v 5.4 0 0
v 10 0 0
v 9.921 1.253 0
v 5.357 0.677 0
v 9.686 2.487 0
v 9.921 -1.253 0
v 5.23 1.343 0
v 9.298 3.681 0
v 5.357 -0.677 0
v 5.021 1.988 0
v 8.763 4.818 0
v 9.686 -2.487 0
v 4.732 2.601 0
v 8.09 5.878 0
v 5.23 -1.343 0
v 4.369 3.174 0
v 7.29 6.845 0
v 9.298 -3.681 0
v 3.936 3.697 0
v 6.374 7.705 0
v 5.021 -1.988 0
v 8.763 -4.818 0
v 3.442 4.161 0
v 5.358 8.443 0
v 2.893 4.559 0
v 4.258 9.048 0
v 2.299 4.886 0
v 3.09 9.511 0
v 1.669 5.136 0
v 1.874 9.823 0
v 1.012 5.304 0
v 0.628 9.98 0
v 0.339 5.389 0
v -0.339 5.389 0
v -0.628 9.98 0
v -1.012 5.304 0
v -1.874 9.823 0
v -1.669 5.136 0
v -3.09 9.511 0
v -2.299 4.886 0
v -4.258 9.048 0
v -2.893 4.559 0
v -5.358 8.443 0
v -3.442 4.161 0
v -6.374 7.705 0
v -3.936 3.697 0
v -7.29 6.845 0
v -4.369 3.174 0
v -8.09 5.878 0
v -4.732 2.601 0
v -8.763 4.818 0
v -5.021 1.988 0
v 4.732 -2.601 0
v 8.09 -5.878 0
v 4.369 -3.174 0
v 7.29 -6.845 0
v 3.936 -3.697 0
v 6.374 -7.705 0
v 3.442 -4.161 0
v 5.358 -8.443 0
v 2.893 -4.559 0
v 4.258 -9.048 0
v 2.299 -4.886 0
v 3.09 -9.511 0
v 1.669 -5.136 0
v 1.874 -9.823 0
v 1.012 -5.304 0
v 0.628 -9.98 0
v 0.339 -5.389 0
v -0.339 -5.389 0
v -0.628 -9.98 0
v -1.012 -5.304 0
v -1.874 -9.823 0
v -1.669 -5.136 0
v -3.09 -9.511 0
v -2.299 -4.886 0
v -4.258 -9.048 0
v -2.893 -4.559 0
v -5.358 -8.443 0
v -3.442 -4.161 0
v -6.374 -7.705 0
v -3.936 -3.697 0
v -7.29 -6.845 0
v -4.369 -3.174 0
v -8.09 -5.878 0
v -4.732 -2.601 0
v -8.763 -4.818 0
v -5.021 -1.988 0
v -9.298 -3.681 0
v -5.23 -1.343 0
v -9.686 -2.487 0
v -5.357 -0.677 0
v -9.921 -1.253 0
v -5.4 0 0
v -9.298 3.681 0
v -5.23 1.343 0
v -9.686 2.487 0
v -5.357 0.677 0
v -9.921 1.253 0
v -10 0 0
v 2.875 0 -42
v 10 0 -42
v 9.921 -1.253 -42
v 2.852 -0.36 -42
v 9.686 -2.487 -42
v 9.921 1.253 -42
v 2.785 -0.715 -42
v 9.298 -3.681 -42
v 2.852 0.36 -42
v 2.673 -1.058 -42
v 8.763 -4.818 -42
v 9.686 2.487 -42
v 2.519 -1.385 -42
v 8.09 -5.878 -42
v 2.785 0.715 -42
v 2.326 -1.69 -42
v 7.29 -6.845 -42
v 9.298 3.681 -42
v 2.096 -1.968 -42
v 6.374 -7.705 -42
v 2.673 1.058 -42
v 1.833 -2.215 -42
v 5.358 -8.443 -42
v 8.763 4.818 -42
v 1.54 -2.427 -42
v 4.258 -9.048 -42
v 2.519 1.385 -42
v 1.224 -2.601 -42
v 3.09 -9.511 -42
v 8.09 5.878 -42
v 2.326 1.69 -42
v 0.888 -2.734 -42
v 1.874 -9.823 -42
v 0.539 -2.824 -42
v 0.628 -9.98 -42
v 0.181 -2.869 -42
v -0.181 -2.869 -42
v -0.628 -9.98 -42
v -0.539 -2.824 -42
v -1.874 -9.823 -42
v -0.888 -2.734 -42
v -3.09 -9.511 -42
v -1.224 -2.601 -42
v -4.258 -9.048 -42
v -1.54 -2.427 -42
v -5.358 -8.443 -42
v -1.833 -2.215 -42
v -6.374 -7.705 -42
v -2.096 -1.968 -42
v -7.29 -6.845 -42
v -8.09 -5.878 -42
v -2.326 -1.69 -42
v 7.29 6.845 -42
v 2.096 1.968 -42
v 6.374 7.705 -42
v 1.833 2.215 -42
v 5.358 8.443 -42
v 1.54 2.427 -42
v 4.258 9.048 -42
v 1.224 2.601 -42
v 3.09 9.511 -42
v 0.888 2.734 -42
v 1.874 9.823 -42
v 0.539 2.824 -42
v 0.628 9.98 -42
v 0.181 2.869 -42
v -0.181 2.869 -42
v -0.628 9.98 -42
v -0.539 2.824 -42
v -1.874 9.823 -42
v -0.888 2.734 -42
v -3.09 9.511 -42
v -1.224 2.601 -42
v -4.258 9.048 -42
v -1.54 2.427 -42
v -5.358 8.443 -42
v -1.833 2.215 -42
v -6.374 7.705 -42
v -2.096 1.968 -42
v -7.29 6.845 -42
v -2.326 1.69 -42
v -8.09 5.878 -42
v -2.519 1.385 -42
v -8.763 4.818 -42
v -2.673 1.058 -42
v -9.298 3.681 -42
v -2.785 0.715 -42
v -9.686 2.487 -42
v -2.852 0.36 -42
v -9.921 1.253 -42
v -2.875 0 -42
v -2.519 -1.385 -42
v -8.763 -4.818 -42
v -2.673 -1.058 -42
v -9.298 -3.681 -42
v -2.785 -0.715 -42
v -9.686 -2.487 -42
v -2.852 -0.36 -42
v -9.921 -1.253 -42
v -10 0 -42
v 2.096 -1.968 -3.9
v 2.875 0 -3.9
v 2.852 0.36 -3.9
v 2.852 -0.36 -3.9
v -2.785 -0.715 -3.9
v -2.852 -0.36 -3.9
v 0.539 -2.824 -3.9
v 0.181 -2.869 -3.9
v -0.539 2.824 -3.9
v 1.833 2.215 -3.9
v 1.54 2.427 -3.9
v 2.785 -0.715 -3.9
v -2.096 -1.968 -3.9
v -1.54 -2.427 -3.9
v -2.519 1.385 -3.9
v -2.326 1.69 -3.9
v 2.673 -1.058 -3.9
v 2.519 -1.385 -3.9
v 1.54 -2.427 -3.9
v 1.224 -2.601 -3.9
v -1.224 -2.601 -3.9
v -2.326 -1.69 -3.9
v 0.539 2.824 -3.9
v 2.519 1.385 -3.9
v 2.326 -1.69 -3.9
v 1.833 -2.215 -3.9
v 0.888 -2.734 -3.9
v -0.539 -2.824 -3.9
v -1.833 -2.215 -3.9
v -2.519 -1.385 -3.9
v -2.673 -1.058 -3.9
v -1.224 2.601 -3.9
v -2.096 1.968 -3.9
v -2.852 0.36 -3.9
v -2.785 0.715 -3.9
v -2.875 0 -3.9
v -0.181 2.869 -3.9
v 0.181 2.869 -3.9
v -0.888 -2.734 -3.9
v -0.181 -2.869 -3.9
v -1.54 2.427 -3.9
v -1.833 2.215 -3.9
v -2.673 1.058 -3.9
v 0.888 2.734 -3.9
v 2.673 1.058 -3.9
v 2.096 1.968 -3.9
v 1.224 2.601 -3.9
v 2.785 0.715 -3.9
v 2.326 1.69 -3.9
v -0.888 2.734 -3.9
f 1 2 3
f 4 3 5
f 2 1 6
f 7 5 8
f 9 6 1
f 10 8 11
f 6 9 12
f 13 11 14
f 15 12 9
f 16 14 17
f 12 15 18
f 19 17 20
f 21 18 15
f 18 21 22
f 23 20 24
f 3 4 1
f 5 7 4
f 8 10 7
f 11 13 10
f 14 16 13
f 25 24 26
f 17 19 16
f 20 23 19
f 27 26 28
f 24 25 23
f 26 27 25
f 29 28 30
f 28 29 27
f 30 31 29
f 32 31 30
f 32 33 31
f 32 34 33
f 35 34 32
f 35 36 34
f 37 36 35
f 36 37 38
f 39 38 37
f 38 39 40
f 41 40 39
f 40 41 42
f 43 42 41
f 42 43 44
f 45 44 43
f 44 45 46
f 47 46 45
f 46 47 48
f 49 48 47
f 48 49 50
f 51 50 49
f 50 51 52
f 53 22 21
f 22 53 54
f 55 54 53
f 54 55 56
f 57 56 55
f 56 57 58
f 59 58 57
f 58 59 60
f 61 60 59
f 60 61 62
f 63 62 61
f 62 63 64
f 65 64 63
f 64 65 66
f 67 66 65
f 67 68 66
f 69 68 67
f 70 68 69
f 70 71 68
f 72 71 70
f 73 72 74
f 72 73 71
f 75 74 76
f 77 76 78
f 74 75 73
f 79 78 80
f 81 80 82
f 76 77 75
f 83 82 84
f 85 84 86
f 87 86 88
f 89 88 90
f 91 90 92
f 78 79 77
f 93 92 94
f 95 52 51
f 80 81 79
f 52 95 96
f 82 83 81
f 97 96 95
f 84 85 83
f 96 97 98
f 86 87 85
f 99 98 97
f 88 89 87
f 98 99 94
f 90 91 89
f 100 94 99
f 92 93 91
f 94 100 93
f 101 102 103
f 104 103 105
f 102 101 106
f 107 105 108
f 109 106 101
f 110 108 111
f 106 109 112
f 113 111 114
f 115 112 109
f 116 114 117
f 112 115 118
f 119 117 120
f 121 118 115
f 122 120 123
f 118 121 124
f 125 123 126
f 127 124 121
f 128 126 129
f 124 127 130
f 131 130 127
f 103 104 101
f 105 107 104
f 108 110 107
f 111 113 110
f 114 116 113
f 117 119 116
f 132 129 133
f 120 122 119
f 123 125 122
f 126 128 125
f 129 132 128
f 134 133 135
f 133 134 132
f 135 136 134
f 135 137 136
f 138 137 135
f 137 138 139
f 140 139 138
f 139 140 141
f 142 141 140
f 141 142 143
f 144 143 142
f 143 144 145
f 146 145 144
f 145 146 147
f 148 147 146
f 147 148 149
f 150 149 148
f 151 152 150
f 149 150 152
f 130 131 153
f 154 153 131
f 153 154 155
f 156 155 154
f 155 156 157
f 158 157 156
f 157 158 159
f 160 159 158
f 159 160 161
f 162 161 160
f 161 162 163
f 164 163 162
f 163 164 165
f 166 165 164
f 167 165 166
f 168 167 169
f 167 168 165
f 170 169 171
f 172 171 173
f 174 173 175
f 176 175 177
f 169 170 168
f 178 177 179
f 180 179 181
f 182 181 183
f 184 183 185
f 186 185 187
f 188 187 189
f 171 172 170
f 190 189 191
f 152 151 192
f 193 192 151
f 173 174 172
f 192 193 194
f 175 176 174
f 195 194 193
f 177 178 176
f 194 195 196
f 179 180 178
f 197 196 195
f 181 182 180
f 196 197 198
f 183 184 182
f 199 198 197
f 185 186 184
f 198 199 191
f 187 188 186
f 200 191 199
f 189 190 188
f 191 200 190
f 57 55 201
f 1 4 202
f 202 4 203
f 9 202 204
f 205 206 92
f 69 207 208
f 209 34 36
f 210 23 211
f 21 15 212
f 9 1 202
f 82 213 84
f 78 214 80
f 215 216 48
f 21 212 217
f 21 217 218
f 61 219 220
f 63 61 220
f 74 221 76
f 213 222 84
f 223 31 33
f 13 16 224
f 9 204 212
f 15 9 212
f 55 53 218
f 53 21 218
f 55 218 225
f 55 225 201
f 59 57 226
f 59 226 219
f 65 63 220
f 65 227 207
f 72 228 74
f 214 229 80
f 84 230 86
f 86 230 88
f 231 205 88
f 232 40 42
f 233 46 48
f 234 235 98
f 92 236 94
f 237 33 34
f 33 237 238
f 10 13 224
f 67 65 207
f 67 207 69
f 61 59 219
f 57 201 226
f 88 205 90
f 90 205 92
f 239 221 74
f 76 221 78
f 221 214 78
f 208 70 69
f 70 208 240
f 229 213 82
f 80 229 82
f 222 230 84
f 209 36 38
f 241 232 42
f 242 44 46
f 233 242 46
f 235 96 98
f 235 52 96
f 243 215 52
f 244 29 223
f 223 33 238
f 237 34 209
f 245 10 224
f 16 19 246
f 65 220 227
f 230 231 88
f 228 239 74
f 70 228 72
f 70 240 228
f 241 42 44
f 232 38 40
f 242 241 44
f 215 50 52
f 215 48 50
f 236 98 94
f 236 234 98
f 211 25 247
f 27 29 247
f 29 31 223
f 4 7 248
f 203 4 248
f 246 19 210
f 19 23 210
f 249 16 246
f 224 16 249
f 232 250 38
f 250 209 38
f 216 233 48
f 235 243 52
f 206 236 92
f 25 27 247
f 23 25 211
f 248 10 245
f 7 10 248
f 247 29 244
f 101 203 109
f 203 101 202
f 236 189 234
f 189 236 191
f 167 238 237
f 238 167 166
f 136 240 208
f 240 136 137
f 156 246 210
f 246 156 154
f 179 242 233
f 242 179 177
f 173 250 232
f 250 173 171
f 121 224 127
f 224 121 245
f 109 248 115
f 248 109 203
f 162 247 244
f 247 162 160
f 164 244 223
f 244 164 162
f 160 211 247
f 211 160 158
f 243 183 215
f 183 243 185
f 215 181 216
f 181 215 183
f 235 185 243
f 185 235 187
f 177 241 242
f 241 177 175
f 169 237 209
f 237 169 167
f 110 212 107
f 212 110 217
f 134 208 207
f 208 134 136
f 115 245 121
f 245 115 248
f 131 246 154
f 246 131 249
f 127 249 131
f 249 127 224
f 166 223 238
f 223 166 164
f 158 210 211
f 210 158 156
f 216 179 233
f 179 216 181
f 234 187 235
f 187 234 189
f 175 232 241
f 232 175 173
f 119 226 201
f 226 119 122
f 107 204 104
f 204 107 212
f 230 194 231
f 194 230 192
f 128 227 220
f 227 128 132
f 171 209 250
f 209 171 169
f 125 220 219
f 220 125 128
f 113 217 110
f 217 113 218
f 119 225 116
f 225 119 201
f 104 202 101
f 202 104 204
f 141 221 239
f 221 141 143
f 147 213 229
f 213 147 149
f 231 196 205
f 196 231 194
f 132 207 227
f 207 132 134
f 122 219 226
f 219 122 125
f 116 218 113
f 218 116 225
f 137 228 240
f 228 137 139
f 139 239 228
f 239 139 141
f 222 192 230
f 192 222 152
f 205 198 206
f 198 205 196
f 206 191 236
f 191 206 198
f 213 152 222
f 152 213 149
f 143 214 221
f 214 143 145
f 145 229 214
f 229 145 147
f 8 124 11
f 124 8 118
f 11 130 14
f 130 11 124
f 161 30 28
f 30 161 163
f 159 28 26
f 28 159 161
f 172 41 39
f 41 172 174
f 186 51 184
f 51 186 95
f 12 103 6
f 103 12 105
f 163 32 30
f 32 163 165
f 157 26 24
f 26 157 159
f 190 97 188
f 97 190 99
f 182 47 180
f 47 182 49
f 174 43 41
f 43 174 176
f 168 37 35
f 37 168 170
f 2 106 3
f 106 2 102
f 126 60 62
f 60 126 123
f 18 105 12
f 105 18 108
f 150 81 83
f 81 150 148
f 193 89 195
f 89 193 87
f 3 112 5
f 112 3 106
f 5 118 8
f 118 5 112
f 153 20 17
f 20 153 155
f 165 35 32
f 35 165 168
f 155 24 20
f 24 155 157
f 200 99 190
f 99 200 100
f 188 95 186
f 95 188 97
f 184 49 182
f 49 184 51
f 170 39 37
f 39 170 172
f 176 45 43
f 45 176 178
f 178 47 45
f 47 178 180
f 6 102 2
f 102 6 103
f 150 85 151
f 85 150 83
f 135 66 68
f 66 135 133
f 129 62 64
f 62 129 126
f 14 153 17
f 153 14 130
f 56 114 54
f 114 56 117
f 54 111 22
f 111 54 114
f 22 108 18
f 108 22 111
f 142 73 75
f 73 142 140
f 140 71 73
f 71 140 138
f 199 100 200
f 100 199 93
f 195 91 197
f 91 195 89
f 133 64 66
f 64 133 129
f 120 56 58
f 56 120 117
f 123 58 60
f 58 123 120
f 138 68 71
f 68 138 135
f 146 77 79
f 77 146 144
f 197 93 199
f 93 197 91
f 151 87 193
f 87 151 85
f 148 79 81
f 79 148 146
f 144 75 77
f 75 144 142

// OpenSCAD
$fn = 50;


difference() {
	union() {
		translate(v = [0, 0, -42.0000000000]) {
			cylinder(h = 42, r = 10.0000000000);
		}
		cylinder(h = 0, r = 19.0000000000);
	}
	union() {
		translate(v = [0, 0, 0]) {
			rotate(a = [0, 0, 0]) {
				difference() {
					union() {
						#translate(v = [0, 0, -42.0000000000]) {
							cylinder(h = 42, r = 2.6000000000);
						}
						#translate(v = [0, 0, -3.9000000000]) {
							cylinder(h = 3.9000000000, r = 10.0000000000, r1 = 2.8750000000, r2 = 5.4000000000);
						}
						#translate(v = [0, 0, -42.0000000000]) {
							cylinder(h = 42, r = 2.8750000000);
						}
						#translate(v = [0, 0, -42.0000000000]) {
							cylinder(h = 42, r = 2.6000000000);
						}
					}
					union();
				}
			}
		}
	}
}
